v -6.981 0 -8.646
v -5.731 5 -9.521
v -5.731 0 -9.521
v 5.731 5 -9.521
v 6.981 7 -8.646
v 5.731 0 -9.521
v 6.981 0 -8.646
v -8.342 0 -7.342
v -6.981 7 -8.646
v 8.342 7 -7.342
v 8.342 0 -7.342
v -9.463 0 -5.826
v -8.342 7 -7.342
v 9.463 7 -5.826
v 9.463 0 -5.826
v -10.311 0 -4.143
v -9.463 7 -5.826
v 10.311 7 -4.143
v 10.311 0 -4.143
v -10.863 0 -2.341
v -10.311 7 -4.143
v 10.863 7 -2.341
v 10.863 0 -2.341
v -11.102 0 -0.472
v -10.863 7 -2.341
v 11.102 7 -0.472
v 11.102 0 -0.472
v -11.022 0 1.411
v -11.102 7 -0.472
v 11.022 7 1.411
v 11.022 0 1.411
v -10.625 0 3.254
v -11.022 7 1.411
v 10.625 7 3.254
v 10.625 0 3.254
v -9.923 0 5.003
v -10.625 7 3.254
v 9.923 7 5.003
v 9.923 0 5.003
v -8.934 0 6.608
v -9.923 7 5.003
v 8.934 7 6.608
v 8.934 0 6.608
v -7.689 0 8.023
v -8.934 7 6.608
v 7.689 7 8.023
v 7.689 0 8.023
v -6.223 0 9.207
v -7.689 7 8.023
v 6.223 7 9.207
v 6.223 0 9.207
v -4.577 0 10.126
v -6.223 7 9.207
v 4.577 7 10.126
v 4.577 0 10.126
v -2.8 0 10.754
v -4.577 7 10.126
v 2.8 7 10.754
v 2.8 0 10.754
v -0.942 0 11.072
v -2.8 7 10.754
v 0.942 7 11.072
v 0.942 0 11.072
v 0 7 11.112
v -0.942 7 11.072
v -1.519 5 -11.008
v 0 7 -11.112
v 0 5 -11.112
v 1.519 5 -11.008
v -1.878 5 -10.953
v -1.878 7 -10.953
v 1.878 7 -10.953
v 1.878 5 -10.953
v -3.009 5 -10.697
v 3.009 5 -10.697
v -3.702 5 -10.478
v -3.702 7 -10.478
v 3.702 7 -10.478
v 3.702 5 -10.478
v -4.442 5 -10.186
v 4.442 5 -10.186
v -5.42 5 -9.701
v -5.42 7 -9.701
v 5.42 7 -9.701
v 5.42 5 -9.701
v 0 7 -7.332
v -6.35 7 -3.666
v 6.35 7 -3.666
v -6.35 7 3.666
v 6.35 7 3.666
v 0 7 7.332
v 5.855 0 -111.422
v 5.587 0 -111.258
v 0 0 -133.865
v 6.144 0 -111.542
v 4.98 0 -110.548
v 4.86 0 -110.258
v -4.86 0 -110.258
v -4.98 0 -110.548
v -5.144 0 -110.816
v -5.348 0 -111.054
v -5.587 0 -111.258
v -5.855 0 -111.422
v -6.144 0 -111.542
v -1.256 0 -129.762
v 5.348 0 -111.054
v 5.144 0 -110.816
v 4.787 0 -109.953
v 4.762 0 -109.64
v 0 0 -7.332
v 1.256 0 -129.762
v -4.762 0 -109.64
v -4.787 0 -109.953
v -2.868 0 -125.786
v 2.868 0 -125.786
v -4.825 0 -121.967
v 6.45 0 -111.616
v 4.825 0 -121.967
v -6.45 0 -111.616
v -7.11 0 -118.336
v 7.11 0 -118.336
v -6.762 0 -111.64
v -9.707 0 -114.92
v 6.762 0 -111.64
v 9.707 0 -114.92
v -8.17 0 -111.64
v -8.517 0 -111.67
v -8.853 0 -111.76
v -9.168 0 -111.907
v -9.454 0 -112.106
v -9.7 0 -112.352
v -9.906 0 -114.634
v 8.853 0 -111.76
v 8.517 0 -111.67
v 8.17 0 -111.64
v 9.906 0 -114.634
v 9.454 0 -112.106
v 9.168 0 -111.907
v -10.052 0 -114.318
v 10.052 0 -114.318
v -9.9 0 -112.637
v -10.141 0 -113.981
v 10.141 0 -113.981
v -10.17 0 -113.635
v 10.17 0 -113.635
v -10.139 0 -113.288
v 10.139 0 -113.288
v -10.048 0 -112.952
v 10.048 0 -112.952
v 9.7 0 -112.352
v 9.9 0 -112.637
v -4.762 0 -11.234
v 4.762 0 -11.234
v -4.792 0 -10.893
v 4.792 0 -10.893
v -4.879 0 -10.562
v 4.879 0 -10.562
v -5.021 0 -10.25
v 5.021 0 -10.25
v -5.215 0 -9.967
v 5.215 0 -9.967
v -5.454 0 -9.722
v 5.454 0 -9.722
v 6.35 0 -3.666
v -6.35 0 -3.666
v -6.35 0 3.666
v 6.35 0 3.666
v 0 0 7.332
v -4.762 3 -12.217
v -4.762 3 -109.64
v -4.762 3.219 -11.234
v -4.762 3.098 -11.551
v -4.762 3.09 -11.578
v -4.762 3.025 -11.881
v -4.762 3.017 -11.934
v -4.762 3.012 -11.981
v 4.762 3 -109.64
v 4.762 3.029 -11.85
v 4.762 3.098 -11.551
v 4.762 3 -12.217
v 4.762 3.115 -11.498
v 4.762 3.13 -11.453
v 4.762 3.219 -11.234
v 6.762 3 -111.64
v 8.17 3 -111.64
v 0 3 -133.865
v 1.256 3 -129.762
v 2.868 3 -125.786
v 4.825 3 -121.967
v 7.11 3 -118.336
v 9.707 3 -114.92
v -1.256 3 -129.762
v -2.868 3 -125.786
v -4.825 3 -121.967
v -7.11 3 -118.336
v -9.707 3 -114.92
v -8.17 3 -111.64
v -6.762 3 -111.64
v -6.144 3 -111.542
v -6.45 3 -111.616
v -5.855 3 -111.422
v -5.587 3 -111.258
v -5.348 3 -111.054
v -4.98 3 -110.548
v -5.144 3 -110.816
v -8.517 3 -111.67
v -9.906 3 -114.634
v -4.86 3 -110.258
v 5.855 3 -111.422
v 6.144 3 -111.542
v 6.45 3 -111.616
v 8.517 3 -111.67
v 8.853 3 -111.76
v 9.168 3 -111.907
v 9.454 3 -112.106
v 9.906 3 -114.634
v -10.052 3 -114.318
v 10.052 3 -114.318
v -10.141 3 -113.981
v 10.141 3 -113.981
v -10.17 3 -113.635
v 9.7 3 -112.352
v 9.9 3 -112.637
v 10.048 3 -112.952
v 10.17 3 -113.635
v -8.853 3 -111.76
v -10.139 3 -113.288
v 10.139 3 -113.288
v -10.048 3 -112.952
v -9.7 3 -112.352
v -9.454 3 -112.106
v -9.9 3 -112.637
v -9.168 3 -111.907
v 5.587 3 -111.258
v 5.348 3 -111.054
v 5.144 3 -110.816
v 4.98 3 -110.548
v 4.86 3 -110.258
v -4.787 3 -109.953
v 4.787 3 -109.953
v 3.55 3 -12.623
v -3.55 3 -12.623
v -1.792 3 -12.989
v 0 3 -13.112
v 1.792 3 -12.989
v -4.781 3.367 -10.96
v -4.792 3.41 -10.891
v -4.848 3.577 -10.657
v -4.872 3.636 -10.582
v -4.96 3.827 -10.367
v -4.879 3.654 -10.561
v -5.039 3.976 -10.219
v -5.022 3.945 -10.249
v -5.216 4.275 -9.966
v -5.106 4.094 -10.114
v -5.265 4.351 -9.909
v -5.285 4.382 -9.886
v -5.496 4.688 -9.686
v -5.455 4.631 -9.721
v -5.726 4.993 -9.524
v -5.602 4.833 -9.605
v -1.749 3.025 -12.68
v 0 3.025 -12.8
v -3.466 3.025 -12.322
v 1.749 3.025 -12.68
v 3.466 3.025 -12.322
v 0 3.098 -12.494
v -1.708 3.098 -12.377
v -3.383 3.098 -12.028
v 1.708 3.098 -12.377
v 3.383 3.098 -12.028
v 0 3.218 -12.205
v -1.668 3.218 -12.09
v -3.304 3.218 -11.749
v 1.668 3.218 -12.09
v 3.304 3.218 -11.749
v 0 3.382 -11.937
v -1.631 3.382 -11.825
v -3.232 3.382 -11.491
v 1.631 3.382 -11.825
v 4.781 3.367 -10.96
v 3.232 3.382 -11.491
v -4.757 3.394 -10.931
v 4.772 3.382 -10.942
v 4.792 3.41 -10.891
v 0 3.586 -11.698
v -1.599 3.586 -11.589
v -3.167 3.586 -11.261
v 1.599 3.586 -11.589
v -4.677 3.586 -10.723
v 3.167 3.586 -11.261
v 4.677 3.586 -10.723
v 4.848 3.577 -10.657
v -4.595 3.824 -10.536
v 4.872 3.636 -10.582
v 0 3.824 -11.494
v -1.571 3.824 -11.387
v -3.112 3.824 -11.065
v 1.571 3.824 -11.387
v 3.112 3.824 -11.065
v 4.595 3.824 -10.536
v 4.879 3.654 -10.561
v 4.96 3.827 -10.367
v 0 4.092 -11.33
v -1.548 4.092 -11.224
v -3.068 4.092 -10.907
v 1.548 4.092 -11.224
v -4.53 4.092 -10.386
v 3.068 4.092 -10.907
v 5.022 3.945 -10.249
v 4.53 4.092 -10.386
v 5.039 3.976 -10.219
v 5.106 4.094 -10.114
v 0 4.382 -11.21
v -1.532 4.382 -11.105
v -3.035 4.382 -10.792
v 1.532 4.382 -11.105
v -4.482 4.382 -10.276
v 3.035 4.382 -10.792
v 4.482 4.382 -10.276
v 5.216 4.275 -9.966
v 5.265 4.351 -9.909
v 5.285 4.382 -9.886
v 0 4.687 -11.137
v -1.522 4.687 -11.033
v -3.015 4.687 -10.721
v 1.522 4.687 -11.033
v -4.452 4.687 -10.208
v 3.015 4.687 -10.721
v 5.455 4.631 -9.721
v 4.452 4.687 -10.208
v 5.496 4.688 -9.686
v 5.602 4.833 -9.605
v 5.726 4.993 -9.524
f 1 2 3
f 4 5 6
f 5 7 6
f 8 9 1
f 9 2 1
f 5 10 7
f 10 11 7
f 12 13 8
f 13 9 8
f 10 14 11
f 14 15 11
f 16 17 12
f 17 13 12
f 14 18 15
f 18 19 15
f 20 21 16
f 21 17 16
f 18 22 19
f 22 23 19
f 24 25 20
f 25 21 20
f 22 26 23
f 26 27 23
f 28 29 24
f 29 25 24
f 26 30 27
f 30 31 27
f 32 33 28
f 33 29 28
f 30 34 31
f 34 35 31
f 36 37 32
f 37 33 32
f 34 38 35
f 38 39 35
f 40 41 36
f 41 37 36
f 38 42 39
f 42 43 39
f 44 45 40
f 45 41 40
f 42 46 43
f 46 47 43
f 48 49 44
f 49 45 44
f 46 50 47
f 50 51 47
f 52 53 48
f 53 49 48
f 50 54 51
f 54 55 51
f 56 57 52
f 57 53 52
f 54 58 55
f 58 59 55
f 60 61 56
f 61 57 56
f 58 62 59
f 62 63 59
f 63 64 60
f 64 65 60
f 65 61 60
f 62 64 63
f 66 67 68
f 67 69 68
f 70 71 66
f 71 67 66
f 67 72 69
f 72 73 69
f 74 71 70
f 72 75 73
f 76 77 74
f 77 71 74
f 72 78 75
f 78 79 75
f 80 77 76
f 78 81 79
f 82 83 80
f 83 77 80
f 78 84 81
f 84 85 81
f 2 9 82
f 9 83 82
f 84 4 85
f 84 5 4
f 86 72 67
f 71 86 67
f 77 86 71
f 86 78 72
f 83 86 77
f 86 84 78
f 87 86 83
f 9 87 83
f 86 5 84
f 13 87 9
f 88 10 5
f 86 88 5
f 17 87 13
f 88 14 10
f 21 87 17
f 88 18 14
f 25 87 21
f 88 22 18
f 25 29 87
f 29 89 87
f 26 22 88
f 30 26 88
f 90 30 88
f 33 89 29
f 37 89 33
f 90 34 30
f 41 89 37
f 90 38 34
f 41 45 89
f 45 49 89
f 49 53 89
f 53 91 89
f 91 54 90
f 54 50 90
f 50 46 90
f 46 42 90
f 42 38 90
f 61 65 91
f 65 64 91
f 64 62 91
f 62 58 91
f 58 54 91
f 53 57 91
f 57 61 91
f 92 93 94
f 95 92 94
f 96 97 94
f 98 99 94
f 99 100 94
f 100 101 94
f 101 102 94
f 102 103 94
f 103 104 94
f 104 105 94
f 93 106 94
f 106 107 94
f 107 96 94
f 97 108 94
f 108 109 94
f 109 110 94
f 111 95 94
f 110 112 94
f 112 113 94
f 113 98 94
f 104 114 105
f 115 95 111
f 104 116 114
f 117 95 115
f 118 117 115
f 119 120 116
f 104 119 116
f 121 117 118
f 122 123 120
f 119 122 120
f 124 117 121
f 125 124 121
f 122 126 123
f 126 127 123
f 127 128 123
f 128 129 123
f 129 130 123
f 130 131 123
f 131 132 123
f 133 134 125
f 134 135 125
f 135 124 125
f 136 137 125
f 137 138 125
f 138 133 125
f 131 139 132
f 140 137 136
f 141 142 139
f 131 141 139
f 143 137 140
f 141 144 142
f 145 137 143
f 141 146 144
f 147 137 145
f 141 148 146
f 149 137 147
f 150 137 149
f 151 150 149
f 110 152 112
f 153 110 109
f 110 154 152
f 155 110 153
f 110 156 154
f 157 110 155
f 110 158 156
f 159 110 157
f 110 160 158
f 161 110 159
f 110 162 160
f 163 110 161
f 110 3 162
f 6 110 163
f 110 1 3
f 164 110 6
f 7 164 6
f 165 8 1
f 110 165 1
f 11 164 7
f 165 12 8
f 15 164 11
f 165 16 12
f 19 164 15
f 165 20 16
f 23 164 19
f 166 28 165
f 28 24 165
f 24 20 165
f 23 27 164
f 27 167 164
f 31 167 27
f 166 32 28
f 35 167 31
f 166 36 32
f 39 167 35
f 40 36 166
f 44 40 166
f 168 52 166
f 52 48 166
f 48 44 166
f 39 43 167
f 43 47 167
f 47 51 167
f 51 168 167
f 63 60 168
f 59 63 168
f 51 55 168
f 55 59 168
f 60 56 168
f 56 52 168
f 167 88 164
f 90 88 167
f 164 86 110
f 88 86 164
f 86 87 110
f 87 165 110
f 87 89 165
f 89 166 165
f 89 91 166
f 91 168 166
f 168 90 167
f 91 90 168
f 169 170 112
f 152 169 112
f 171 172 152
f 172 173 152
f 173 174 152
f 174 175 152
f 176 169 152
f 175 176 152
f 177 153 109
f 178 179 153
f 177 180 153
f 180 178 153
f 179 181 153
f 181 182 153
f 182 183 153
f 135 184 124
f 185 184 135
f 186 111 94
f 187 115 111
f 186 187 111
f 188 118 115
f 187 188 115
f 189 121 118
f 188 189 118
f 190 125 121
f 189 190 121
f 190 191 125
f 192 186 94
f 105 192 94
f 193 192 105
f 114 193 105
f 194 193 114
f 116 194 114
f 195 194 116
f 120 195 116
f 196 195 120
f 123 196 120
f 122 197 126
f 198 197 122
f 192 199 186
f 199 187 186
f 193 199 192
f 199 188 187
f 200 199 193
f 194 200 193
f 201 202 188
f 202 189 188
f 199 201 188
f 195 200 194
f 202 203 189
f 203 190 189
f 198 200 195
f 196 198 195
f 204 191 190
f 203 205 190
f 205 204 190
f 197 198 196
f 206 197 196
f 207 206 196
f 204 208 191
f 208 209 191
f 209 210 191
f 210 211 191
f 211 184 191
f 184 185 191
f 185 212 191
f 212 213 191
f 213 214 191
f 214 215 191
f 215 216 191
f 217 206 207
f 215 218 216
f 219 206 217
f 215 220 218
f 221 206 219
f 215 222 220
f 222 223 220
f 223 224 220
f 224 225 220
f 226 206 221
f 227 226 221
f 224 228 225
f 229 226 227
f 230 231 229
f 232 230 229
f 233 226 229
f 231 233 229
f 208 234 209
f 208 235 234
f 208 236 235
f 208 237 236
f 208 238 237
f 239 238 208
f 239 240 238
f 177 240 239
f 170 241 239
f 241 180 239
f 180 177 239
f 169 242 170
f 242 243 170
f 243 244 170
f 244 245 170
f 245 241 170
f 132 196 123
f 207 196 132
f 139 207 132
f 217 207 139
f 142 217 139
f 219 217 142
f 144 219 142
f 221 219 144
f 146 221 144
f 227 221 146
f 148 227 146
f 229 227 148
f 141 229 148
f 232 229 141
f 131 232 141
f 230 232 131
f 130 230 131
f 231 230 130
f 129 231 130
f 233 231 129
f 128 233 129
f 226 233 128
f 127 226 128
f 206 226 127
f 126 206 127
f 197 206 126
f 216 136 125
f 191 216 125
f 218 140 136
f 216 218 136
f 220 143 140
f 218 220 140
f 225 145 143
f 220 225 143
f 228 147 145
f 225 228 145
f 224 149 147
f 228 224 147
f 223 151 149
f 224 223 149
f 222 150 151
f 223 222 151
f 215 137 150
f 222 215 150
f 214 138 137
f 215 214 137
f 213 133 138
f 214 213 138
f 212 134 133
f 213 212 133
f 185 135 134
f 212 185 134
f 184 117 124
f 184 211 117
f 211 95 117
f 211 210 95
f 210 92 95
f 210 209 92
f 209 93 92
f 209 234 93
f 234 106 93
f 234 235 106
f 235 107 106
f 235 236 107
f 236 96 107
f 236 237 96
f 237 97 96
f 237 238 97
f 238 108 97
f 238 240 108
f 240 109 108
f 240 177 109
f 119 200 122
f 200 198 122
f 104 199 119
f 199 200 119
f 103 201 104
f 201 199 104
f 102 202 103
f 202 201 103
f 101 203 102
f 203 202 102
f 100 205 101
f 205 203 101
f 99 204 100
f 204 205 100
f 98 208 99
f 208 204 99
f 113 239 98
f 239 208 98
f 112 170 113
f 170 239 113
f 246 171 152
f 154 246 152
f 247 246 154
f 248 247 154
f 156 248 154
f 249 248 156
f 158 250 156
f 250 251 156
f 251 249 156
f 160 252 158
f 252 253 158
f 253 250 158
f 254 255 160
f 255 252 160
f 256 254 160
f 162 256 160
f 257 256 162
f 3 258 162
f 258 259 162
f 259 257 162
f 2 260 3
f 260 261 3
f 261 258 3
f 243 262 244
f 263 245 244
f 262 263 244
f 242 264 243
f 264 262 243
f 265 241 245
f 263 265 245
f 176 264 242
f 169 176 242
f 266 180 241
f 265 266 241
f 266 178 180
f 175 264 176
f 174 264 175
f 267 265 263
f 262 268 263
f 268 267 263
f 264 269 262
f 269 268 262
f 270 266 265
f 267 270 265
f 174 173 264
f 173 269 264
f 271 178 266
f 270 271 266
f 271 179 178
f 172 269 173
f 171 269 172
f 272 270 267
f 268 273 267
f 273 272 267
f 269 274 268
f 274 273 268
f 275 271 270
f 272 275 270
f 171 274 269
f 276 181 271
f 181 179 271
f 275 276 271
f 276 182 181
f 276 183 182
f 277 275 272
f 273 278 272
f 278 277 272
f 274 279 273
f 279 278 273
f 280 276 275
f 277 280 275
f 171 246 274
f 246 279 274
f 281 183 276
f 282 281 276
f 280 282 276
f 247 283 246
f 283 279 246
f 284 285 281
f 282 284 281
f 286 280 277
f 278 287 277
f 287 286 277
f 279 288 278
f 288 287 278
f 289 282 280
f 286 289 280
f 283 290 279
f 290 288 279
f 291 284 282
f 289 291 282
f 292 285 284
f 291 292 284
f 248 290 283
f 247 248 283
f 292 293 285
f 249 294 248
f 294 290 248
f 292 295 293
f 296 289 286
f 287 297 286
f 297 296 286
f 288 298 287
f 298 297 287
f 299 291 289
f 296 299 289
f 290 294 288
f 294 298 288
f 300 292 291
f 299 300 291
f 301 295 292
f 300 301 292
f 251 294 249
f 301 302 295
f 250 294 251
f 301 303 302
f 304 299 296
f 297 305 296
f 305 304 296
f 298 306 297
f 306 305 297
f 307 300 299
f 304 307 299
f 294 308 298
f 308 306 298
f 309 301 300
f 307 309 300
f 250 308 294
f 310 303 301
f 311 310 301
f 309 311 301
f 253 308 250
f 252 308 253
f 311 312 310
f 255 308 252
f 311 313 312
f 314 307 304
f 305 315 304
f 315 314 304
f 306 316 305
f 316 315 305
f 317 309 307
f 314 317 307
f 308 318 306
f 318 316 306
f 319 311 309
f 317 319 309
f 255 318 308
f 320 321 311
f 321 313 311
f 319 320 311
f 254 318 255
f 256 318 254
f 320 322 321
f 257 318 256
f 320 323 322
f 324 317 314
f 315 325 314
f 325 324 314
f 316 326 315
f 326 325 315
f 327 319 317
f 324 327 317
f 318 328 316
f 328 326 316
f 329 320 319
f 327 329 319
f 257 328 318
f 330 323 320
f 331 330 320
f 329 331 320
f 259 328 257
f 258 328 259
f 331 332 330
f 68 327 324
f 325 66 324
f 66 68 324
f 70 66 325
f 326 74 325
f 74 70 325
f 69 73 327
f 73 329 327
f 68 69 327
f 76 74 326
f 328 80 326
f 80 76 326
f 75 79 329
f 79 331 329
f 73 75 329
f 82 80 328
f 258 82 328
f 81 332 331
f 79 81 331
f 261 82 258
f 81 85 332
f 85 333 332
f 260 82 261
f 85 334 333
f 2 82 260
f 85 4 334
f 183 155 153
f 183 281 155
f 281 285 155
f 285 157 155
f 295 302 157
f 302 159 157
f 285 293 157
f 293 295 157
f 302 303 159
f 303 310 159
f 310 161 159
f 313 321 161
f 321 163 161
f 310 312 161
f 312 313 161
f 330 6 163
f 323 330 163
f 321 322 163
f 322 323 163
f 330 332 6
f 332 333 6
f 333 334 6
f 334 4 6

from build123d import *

# Parameters (mm, degrees)
SKETCH1_R           = 11.1125
BOSS_EXTRUDE1_DEPTH = 7
BOSS_EXTRUDE2_DEPTH = 3
FILLET1_R           = 2


with BuildPart() as part:
    # Sketch1 → Boss-Extrude1 (new body)
    with BuildSketch(Plane(origin=(0, 0, 0), x_dir=(1, 0, 0), z_dir=(0, 1, 0))):
        Circle(SKETCH1_R)
        Polygon((6.35, 3.666174209), (0, 7.332348419), (-6.35, 3.666174209), (-6.35, -3.666174209), (0, -7.332348419), (6.35, -3.666174209), align=None, mode=Mode.SUBTRACT)
    extrude(amount=BOSS_EXTRUDE1_DEPTH)

    # Sketch2 → Boss-Extrude2 (add)
    with BuildSketch(Plane(origin=(0, 0, 0), x_dir=(1, 0, 0), z_dir=(0, 1, 0))):
        with BuildLine():
            Line((-4.7625, 111.640231571), (-12.7, 111.640231571))
            ThreePointArc((-12.7, 111.640231571), (-4.861835295, 121.90235174), (0, 133.865231571))
            ThreePointArc((0, 133.865231571), (4.861835295, 121.90235174), (12.7, 111.640231571))
            Line((12.7, 111.640231571), (4.7625, 111.640231571))
            Line((4.7625, 111.640231571), (4.7625, 10.040231571))
            Line((4.7625, 10.040231571), (-4.7625, 10.040231571))
            Line((-4.7625, 10.040231571), (-4.7625, 111.640231571))
        make_face()
    extrude(amount=BOSS_EXTRUDE2_DEPTH)

    # Fillet1
    fillet1_edges = [part.edges().sort_by_distance(p)[0] for p in [
        (0, 3, -11.1125),
        (-4.7625, 1.5, -111.640231571),
        (-4.7625, 1.5, -10.040231571),
        (4.7625, 1.5, -10.040231571),
        (4.7625, 1.5, -111.640231571),
        (12.7, 1.5, -111.640231571),
        (-12.7, 1.5, -111.640231571),
    ]]
    fillet(fillet1_edges, radius=FILLET1_R)


solid = part.part
